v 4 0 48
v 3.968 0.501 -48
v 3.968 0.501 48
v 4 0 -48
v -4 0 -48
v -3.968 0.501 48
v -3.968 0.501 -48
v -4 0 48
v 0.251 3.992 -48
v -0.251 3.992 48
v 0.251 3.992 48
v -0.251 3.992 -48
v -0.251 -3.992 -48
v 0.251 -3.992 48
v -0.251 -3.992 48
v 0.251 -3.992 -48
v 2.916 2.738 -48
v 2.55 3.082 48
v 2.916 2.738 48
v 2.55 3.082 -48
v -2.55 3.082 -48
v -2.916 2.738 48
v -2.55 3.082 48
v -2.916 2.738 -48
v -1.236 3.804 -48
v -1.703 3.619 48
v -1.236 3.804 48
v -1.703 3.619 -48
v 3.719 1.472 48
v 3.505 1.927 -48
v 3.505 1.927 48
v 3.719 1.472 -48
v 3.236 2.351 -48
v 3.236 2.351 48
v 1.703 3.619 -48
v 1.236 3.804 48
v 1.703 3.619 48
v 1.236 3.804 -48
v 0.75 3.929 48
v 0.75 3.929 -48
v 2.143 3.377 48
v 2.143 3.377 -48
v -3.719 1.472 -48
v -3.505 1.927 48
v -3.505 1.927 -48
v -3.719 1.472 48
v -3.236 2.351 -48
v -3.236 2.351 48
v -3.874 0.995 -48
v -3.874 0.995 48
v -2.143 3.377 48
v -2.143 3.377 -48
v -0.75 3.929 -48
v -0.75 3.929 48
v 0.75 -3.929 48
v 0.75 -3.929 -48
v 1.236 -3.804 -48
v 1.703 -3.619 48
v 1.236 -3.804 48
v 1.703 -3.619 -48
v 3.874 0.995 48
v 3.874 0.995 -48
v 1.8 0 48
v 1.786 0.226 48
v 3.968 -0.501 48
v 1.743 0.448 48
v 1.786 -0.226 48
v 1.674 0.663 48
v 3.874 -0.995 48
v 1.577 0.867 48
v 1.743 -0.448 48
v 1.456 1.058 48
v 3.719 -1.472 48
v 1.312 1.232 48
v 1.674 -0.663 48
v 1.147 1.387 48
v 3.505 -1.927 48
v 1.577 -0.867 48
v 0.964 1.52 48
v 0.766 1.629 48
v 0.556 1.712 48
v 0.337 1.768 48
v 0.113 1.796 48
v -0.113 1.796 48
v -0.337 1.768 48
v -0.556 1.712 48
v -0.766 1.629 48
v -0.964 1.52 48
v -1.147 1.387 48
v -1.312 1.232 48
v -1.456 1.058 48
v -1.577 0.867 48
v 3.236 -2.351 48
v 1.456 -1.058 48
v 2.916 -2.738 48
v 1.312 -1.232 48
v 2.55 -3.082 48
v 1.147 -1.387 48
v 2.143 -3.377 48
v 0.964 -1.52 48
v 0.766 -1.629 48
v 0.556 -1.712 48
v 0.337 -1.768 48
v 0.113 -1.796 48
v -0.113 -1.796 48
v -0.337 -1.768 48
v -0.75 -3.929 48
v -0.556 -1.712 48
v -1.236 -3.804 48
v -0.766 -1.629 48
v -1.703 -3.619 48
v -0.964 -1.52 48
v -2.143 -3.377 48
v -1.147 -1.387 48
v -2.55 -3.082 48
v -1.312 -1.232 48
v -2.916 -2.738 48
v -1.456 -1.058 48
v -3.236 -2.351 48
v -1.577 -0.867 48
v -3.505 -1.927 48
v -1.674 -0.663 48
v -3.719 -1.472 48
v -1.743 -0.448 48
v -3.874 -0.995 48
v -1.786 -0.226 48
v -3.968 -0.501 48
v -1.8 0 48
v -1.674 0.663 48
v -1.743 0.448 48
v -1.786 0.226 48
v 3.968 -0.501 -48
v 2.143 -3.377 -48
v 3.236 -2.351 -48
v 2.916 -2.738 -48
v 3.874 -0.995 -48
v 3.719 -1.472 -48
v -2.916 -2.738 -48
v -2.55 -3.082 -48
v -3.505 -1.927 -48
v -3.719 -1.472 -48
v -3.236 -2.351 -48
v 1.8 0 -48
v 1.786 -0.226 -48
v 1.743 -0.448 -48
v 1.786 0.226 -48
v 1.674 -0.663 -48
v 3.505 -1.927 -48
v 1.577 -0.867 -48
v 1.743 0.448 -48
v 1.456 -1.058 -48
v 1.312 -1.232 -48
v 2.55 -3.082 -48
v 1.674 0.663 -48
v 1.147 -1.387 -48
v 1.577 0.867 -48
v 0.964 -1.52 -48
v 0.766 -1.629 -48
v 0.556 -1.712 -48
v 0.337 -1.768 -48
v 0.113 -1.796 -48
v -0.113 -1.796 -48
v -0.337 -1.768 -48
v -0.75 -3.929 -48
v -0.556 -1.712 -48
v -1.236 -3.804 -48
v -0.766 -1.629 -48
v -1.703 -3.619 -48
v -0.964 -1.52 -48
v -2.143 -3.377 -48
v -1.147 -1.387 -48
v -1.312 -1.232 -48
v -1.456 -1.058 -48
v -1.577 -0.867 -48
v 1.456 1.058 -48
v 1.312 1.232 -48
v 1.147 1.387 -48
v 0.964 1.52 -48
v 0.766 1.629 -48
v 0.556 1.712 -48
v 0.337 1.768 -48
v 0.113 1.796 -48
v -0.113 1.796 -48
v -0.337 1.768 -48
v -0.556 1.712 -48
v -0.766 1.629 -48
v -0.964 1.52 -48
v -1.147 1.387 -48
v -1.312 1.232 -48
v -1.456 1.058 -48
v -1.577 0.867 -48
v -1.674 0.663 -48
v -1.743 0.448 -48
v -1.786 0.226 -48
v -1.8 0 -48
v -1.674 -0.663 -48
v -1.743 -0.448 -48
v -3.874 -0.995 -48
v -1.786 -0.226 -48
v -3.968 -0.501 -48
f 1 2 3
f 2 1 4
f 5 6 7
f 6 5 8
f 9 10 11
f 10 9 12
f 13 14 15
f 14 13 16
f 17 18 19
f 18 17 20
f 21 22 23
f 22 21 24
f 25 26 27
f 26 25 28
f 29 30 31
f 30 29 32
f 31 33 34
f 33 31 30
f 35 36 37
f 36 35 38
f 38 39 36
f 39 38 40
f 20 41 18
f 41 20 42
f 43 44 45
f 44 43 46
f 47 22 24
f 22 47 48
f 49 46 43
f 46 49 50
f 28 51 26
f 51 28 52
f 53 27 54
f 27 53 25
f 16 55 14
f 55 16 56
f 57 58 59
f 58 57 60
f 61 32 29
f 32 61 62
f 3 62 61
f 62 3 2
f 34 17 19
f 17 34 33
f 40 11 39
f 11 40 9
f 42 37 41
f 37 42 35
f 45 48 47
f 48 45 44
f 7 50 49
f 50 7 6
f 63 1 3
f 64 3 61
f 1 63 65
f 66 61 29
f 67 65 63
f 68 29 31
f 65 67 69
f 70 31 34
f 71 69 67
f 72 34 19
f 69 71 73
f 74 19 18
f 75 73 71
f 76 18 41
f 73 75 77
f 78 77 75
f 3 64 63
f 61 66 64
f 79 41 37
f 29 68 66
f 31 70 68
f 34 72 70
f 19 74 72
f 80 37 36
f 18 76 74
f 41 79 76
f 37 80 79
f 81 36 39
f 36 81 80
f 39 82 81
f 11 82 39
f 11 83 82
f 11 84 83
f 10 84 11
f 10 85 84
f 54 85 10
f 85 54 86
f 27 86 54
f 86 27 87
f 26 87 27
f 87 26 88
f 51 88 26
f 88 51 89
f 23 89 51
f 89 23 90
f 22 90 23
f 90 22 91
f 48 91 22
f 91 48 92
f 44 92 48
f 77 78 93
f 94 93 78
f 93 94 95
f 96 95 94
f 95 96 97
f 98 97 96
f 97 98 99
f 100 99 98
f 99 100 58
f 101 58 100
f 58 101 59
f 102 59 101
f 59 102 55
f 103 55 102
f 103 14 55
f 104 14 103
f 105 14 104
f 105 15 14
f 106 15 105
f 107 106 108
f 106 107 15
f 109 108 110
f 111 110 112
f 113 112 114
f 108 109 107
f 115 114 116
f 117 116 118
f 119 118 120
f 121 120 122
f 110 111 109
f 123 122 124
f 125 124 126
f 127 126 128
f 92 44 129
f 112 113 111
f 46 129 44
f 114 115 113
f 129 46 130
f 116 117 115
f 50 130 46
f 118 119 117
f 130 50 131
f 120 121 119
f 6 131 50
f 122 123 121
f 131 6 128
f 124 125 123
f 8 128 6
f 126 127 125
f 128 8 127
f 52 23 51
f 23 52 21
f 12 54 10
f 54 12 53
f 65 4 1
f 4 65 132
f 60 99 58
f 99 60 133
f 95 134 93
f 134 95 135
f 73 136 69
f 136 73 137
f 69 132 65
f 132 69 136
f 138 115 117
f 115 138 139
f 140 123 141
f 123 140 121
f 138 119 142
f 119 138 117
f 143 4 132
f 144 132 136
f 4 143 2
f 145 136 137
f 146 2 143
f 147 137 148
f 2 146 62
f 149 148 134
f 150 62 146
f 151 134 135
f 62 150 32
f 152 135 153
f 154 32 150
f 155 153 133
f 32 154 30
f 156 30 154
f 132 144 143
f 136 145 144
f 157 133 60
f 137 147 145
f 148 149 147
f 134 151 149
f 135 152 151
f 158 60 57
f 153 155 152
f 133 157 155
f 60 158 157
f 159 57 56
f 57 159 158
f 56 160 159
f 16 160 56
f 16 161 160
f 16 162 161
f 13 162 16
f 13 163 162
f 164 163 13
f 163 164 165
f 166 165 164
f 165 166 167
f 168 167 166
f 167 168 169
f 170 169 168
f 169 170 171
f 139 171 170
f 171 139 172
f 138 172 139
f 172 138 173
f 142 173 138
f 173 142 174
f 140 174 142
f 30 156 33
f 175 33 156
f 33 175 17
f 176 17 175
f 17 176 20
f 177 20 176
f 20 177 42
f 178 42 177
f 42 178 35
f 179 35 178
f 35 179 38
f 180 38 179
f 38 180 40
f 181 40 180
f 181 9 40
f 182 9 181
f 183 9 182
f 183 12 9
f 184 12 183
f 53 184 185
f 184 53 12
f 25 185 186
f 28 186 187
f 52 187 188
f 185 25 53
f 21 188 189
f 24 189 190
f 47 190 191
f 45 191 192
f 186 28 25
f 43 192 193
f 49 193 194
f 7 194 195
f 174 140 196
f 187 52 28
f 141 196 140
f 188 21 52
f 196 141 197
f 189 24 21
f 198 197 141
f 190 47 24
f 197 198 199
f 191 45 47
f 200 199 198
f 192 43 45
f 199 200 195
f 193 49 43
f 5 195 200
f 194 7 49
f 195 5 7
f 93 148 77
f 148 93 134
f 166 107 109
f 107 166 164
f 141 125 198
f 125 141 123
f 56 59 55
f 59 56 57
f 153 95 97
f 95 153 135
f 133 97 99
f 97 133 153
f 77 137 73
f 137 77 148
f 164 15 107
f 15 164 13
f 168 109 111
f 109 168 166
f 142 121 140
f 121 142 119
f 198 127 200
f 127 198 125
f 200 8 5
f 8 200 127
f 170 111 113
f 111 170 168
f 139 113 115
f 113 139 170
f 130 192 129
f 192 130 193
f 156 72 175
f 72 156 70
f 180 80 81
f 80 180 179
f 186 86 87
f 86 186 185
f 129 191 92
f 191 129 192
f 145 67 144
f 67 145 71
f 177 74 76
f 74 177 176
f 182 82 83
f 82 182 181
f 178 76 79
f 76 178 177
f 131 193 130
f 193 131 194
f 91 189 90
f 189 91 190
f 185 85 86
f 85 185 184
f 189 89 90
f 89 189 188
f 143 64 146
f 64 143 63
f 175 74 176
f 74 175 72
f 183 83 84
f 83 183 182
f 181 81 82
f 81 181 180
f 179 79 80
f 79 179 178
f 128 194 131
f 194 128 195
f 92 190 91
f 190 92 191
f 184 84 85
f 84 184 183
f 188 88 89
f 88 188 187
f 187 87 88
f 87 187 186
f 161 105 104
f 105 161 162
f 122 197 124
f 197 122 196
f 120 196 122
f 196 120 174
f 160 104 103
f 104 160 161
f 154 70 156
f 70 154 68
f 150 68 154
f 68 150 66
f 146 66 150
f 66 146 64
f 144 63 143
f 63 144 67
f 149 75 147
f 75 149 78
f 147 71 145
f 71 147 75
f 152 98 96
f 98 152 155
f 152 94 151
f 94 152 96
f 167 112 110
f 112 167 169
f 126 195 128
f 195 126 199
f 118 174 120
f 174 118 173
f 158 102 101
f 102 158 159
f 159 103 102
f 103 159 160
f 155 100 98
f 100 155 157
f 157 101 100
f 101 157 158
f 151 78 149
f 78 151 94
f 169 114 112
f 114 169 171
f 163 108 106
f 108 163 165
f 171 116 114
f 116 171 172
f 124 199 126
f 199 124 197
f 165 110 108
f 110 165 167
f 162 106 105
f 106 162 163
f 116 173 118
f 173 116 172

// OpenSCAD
$fn = 50;


difference() {
	union() {
		translate(v = [0, 0, -48.0000000000]) {
			cylinder(h = 96, r = 4.0000000000);
		}
	}
	union() {
		translate(v = [0, 0, -100.0000000000]) {
			cylinder(h = 200, r = 1.8000000000);
		}
	}
}
